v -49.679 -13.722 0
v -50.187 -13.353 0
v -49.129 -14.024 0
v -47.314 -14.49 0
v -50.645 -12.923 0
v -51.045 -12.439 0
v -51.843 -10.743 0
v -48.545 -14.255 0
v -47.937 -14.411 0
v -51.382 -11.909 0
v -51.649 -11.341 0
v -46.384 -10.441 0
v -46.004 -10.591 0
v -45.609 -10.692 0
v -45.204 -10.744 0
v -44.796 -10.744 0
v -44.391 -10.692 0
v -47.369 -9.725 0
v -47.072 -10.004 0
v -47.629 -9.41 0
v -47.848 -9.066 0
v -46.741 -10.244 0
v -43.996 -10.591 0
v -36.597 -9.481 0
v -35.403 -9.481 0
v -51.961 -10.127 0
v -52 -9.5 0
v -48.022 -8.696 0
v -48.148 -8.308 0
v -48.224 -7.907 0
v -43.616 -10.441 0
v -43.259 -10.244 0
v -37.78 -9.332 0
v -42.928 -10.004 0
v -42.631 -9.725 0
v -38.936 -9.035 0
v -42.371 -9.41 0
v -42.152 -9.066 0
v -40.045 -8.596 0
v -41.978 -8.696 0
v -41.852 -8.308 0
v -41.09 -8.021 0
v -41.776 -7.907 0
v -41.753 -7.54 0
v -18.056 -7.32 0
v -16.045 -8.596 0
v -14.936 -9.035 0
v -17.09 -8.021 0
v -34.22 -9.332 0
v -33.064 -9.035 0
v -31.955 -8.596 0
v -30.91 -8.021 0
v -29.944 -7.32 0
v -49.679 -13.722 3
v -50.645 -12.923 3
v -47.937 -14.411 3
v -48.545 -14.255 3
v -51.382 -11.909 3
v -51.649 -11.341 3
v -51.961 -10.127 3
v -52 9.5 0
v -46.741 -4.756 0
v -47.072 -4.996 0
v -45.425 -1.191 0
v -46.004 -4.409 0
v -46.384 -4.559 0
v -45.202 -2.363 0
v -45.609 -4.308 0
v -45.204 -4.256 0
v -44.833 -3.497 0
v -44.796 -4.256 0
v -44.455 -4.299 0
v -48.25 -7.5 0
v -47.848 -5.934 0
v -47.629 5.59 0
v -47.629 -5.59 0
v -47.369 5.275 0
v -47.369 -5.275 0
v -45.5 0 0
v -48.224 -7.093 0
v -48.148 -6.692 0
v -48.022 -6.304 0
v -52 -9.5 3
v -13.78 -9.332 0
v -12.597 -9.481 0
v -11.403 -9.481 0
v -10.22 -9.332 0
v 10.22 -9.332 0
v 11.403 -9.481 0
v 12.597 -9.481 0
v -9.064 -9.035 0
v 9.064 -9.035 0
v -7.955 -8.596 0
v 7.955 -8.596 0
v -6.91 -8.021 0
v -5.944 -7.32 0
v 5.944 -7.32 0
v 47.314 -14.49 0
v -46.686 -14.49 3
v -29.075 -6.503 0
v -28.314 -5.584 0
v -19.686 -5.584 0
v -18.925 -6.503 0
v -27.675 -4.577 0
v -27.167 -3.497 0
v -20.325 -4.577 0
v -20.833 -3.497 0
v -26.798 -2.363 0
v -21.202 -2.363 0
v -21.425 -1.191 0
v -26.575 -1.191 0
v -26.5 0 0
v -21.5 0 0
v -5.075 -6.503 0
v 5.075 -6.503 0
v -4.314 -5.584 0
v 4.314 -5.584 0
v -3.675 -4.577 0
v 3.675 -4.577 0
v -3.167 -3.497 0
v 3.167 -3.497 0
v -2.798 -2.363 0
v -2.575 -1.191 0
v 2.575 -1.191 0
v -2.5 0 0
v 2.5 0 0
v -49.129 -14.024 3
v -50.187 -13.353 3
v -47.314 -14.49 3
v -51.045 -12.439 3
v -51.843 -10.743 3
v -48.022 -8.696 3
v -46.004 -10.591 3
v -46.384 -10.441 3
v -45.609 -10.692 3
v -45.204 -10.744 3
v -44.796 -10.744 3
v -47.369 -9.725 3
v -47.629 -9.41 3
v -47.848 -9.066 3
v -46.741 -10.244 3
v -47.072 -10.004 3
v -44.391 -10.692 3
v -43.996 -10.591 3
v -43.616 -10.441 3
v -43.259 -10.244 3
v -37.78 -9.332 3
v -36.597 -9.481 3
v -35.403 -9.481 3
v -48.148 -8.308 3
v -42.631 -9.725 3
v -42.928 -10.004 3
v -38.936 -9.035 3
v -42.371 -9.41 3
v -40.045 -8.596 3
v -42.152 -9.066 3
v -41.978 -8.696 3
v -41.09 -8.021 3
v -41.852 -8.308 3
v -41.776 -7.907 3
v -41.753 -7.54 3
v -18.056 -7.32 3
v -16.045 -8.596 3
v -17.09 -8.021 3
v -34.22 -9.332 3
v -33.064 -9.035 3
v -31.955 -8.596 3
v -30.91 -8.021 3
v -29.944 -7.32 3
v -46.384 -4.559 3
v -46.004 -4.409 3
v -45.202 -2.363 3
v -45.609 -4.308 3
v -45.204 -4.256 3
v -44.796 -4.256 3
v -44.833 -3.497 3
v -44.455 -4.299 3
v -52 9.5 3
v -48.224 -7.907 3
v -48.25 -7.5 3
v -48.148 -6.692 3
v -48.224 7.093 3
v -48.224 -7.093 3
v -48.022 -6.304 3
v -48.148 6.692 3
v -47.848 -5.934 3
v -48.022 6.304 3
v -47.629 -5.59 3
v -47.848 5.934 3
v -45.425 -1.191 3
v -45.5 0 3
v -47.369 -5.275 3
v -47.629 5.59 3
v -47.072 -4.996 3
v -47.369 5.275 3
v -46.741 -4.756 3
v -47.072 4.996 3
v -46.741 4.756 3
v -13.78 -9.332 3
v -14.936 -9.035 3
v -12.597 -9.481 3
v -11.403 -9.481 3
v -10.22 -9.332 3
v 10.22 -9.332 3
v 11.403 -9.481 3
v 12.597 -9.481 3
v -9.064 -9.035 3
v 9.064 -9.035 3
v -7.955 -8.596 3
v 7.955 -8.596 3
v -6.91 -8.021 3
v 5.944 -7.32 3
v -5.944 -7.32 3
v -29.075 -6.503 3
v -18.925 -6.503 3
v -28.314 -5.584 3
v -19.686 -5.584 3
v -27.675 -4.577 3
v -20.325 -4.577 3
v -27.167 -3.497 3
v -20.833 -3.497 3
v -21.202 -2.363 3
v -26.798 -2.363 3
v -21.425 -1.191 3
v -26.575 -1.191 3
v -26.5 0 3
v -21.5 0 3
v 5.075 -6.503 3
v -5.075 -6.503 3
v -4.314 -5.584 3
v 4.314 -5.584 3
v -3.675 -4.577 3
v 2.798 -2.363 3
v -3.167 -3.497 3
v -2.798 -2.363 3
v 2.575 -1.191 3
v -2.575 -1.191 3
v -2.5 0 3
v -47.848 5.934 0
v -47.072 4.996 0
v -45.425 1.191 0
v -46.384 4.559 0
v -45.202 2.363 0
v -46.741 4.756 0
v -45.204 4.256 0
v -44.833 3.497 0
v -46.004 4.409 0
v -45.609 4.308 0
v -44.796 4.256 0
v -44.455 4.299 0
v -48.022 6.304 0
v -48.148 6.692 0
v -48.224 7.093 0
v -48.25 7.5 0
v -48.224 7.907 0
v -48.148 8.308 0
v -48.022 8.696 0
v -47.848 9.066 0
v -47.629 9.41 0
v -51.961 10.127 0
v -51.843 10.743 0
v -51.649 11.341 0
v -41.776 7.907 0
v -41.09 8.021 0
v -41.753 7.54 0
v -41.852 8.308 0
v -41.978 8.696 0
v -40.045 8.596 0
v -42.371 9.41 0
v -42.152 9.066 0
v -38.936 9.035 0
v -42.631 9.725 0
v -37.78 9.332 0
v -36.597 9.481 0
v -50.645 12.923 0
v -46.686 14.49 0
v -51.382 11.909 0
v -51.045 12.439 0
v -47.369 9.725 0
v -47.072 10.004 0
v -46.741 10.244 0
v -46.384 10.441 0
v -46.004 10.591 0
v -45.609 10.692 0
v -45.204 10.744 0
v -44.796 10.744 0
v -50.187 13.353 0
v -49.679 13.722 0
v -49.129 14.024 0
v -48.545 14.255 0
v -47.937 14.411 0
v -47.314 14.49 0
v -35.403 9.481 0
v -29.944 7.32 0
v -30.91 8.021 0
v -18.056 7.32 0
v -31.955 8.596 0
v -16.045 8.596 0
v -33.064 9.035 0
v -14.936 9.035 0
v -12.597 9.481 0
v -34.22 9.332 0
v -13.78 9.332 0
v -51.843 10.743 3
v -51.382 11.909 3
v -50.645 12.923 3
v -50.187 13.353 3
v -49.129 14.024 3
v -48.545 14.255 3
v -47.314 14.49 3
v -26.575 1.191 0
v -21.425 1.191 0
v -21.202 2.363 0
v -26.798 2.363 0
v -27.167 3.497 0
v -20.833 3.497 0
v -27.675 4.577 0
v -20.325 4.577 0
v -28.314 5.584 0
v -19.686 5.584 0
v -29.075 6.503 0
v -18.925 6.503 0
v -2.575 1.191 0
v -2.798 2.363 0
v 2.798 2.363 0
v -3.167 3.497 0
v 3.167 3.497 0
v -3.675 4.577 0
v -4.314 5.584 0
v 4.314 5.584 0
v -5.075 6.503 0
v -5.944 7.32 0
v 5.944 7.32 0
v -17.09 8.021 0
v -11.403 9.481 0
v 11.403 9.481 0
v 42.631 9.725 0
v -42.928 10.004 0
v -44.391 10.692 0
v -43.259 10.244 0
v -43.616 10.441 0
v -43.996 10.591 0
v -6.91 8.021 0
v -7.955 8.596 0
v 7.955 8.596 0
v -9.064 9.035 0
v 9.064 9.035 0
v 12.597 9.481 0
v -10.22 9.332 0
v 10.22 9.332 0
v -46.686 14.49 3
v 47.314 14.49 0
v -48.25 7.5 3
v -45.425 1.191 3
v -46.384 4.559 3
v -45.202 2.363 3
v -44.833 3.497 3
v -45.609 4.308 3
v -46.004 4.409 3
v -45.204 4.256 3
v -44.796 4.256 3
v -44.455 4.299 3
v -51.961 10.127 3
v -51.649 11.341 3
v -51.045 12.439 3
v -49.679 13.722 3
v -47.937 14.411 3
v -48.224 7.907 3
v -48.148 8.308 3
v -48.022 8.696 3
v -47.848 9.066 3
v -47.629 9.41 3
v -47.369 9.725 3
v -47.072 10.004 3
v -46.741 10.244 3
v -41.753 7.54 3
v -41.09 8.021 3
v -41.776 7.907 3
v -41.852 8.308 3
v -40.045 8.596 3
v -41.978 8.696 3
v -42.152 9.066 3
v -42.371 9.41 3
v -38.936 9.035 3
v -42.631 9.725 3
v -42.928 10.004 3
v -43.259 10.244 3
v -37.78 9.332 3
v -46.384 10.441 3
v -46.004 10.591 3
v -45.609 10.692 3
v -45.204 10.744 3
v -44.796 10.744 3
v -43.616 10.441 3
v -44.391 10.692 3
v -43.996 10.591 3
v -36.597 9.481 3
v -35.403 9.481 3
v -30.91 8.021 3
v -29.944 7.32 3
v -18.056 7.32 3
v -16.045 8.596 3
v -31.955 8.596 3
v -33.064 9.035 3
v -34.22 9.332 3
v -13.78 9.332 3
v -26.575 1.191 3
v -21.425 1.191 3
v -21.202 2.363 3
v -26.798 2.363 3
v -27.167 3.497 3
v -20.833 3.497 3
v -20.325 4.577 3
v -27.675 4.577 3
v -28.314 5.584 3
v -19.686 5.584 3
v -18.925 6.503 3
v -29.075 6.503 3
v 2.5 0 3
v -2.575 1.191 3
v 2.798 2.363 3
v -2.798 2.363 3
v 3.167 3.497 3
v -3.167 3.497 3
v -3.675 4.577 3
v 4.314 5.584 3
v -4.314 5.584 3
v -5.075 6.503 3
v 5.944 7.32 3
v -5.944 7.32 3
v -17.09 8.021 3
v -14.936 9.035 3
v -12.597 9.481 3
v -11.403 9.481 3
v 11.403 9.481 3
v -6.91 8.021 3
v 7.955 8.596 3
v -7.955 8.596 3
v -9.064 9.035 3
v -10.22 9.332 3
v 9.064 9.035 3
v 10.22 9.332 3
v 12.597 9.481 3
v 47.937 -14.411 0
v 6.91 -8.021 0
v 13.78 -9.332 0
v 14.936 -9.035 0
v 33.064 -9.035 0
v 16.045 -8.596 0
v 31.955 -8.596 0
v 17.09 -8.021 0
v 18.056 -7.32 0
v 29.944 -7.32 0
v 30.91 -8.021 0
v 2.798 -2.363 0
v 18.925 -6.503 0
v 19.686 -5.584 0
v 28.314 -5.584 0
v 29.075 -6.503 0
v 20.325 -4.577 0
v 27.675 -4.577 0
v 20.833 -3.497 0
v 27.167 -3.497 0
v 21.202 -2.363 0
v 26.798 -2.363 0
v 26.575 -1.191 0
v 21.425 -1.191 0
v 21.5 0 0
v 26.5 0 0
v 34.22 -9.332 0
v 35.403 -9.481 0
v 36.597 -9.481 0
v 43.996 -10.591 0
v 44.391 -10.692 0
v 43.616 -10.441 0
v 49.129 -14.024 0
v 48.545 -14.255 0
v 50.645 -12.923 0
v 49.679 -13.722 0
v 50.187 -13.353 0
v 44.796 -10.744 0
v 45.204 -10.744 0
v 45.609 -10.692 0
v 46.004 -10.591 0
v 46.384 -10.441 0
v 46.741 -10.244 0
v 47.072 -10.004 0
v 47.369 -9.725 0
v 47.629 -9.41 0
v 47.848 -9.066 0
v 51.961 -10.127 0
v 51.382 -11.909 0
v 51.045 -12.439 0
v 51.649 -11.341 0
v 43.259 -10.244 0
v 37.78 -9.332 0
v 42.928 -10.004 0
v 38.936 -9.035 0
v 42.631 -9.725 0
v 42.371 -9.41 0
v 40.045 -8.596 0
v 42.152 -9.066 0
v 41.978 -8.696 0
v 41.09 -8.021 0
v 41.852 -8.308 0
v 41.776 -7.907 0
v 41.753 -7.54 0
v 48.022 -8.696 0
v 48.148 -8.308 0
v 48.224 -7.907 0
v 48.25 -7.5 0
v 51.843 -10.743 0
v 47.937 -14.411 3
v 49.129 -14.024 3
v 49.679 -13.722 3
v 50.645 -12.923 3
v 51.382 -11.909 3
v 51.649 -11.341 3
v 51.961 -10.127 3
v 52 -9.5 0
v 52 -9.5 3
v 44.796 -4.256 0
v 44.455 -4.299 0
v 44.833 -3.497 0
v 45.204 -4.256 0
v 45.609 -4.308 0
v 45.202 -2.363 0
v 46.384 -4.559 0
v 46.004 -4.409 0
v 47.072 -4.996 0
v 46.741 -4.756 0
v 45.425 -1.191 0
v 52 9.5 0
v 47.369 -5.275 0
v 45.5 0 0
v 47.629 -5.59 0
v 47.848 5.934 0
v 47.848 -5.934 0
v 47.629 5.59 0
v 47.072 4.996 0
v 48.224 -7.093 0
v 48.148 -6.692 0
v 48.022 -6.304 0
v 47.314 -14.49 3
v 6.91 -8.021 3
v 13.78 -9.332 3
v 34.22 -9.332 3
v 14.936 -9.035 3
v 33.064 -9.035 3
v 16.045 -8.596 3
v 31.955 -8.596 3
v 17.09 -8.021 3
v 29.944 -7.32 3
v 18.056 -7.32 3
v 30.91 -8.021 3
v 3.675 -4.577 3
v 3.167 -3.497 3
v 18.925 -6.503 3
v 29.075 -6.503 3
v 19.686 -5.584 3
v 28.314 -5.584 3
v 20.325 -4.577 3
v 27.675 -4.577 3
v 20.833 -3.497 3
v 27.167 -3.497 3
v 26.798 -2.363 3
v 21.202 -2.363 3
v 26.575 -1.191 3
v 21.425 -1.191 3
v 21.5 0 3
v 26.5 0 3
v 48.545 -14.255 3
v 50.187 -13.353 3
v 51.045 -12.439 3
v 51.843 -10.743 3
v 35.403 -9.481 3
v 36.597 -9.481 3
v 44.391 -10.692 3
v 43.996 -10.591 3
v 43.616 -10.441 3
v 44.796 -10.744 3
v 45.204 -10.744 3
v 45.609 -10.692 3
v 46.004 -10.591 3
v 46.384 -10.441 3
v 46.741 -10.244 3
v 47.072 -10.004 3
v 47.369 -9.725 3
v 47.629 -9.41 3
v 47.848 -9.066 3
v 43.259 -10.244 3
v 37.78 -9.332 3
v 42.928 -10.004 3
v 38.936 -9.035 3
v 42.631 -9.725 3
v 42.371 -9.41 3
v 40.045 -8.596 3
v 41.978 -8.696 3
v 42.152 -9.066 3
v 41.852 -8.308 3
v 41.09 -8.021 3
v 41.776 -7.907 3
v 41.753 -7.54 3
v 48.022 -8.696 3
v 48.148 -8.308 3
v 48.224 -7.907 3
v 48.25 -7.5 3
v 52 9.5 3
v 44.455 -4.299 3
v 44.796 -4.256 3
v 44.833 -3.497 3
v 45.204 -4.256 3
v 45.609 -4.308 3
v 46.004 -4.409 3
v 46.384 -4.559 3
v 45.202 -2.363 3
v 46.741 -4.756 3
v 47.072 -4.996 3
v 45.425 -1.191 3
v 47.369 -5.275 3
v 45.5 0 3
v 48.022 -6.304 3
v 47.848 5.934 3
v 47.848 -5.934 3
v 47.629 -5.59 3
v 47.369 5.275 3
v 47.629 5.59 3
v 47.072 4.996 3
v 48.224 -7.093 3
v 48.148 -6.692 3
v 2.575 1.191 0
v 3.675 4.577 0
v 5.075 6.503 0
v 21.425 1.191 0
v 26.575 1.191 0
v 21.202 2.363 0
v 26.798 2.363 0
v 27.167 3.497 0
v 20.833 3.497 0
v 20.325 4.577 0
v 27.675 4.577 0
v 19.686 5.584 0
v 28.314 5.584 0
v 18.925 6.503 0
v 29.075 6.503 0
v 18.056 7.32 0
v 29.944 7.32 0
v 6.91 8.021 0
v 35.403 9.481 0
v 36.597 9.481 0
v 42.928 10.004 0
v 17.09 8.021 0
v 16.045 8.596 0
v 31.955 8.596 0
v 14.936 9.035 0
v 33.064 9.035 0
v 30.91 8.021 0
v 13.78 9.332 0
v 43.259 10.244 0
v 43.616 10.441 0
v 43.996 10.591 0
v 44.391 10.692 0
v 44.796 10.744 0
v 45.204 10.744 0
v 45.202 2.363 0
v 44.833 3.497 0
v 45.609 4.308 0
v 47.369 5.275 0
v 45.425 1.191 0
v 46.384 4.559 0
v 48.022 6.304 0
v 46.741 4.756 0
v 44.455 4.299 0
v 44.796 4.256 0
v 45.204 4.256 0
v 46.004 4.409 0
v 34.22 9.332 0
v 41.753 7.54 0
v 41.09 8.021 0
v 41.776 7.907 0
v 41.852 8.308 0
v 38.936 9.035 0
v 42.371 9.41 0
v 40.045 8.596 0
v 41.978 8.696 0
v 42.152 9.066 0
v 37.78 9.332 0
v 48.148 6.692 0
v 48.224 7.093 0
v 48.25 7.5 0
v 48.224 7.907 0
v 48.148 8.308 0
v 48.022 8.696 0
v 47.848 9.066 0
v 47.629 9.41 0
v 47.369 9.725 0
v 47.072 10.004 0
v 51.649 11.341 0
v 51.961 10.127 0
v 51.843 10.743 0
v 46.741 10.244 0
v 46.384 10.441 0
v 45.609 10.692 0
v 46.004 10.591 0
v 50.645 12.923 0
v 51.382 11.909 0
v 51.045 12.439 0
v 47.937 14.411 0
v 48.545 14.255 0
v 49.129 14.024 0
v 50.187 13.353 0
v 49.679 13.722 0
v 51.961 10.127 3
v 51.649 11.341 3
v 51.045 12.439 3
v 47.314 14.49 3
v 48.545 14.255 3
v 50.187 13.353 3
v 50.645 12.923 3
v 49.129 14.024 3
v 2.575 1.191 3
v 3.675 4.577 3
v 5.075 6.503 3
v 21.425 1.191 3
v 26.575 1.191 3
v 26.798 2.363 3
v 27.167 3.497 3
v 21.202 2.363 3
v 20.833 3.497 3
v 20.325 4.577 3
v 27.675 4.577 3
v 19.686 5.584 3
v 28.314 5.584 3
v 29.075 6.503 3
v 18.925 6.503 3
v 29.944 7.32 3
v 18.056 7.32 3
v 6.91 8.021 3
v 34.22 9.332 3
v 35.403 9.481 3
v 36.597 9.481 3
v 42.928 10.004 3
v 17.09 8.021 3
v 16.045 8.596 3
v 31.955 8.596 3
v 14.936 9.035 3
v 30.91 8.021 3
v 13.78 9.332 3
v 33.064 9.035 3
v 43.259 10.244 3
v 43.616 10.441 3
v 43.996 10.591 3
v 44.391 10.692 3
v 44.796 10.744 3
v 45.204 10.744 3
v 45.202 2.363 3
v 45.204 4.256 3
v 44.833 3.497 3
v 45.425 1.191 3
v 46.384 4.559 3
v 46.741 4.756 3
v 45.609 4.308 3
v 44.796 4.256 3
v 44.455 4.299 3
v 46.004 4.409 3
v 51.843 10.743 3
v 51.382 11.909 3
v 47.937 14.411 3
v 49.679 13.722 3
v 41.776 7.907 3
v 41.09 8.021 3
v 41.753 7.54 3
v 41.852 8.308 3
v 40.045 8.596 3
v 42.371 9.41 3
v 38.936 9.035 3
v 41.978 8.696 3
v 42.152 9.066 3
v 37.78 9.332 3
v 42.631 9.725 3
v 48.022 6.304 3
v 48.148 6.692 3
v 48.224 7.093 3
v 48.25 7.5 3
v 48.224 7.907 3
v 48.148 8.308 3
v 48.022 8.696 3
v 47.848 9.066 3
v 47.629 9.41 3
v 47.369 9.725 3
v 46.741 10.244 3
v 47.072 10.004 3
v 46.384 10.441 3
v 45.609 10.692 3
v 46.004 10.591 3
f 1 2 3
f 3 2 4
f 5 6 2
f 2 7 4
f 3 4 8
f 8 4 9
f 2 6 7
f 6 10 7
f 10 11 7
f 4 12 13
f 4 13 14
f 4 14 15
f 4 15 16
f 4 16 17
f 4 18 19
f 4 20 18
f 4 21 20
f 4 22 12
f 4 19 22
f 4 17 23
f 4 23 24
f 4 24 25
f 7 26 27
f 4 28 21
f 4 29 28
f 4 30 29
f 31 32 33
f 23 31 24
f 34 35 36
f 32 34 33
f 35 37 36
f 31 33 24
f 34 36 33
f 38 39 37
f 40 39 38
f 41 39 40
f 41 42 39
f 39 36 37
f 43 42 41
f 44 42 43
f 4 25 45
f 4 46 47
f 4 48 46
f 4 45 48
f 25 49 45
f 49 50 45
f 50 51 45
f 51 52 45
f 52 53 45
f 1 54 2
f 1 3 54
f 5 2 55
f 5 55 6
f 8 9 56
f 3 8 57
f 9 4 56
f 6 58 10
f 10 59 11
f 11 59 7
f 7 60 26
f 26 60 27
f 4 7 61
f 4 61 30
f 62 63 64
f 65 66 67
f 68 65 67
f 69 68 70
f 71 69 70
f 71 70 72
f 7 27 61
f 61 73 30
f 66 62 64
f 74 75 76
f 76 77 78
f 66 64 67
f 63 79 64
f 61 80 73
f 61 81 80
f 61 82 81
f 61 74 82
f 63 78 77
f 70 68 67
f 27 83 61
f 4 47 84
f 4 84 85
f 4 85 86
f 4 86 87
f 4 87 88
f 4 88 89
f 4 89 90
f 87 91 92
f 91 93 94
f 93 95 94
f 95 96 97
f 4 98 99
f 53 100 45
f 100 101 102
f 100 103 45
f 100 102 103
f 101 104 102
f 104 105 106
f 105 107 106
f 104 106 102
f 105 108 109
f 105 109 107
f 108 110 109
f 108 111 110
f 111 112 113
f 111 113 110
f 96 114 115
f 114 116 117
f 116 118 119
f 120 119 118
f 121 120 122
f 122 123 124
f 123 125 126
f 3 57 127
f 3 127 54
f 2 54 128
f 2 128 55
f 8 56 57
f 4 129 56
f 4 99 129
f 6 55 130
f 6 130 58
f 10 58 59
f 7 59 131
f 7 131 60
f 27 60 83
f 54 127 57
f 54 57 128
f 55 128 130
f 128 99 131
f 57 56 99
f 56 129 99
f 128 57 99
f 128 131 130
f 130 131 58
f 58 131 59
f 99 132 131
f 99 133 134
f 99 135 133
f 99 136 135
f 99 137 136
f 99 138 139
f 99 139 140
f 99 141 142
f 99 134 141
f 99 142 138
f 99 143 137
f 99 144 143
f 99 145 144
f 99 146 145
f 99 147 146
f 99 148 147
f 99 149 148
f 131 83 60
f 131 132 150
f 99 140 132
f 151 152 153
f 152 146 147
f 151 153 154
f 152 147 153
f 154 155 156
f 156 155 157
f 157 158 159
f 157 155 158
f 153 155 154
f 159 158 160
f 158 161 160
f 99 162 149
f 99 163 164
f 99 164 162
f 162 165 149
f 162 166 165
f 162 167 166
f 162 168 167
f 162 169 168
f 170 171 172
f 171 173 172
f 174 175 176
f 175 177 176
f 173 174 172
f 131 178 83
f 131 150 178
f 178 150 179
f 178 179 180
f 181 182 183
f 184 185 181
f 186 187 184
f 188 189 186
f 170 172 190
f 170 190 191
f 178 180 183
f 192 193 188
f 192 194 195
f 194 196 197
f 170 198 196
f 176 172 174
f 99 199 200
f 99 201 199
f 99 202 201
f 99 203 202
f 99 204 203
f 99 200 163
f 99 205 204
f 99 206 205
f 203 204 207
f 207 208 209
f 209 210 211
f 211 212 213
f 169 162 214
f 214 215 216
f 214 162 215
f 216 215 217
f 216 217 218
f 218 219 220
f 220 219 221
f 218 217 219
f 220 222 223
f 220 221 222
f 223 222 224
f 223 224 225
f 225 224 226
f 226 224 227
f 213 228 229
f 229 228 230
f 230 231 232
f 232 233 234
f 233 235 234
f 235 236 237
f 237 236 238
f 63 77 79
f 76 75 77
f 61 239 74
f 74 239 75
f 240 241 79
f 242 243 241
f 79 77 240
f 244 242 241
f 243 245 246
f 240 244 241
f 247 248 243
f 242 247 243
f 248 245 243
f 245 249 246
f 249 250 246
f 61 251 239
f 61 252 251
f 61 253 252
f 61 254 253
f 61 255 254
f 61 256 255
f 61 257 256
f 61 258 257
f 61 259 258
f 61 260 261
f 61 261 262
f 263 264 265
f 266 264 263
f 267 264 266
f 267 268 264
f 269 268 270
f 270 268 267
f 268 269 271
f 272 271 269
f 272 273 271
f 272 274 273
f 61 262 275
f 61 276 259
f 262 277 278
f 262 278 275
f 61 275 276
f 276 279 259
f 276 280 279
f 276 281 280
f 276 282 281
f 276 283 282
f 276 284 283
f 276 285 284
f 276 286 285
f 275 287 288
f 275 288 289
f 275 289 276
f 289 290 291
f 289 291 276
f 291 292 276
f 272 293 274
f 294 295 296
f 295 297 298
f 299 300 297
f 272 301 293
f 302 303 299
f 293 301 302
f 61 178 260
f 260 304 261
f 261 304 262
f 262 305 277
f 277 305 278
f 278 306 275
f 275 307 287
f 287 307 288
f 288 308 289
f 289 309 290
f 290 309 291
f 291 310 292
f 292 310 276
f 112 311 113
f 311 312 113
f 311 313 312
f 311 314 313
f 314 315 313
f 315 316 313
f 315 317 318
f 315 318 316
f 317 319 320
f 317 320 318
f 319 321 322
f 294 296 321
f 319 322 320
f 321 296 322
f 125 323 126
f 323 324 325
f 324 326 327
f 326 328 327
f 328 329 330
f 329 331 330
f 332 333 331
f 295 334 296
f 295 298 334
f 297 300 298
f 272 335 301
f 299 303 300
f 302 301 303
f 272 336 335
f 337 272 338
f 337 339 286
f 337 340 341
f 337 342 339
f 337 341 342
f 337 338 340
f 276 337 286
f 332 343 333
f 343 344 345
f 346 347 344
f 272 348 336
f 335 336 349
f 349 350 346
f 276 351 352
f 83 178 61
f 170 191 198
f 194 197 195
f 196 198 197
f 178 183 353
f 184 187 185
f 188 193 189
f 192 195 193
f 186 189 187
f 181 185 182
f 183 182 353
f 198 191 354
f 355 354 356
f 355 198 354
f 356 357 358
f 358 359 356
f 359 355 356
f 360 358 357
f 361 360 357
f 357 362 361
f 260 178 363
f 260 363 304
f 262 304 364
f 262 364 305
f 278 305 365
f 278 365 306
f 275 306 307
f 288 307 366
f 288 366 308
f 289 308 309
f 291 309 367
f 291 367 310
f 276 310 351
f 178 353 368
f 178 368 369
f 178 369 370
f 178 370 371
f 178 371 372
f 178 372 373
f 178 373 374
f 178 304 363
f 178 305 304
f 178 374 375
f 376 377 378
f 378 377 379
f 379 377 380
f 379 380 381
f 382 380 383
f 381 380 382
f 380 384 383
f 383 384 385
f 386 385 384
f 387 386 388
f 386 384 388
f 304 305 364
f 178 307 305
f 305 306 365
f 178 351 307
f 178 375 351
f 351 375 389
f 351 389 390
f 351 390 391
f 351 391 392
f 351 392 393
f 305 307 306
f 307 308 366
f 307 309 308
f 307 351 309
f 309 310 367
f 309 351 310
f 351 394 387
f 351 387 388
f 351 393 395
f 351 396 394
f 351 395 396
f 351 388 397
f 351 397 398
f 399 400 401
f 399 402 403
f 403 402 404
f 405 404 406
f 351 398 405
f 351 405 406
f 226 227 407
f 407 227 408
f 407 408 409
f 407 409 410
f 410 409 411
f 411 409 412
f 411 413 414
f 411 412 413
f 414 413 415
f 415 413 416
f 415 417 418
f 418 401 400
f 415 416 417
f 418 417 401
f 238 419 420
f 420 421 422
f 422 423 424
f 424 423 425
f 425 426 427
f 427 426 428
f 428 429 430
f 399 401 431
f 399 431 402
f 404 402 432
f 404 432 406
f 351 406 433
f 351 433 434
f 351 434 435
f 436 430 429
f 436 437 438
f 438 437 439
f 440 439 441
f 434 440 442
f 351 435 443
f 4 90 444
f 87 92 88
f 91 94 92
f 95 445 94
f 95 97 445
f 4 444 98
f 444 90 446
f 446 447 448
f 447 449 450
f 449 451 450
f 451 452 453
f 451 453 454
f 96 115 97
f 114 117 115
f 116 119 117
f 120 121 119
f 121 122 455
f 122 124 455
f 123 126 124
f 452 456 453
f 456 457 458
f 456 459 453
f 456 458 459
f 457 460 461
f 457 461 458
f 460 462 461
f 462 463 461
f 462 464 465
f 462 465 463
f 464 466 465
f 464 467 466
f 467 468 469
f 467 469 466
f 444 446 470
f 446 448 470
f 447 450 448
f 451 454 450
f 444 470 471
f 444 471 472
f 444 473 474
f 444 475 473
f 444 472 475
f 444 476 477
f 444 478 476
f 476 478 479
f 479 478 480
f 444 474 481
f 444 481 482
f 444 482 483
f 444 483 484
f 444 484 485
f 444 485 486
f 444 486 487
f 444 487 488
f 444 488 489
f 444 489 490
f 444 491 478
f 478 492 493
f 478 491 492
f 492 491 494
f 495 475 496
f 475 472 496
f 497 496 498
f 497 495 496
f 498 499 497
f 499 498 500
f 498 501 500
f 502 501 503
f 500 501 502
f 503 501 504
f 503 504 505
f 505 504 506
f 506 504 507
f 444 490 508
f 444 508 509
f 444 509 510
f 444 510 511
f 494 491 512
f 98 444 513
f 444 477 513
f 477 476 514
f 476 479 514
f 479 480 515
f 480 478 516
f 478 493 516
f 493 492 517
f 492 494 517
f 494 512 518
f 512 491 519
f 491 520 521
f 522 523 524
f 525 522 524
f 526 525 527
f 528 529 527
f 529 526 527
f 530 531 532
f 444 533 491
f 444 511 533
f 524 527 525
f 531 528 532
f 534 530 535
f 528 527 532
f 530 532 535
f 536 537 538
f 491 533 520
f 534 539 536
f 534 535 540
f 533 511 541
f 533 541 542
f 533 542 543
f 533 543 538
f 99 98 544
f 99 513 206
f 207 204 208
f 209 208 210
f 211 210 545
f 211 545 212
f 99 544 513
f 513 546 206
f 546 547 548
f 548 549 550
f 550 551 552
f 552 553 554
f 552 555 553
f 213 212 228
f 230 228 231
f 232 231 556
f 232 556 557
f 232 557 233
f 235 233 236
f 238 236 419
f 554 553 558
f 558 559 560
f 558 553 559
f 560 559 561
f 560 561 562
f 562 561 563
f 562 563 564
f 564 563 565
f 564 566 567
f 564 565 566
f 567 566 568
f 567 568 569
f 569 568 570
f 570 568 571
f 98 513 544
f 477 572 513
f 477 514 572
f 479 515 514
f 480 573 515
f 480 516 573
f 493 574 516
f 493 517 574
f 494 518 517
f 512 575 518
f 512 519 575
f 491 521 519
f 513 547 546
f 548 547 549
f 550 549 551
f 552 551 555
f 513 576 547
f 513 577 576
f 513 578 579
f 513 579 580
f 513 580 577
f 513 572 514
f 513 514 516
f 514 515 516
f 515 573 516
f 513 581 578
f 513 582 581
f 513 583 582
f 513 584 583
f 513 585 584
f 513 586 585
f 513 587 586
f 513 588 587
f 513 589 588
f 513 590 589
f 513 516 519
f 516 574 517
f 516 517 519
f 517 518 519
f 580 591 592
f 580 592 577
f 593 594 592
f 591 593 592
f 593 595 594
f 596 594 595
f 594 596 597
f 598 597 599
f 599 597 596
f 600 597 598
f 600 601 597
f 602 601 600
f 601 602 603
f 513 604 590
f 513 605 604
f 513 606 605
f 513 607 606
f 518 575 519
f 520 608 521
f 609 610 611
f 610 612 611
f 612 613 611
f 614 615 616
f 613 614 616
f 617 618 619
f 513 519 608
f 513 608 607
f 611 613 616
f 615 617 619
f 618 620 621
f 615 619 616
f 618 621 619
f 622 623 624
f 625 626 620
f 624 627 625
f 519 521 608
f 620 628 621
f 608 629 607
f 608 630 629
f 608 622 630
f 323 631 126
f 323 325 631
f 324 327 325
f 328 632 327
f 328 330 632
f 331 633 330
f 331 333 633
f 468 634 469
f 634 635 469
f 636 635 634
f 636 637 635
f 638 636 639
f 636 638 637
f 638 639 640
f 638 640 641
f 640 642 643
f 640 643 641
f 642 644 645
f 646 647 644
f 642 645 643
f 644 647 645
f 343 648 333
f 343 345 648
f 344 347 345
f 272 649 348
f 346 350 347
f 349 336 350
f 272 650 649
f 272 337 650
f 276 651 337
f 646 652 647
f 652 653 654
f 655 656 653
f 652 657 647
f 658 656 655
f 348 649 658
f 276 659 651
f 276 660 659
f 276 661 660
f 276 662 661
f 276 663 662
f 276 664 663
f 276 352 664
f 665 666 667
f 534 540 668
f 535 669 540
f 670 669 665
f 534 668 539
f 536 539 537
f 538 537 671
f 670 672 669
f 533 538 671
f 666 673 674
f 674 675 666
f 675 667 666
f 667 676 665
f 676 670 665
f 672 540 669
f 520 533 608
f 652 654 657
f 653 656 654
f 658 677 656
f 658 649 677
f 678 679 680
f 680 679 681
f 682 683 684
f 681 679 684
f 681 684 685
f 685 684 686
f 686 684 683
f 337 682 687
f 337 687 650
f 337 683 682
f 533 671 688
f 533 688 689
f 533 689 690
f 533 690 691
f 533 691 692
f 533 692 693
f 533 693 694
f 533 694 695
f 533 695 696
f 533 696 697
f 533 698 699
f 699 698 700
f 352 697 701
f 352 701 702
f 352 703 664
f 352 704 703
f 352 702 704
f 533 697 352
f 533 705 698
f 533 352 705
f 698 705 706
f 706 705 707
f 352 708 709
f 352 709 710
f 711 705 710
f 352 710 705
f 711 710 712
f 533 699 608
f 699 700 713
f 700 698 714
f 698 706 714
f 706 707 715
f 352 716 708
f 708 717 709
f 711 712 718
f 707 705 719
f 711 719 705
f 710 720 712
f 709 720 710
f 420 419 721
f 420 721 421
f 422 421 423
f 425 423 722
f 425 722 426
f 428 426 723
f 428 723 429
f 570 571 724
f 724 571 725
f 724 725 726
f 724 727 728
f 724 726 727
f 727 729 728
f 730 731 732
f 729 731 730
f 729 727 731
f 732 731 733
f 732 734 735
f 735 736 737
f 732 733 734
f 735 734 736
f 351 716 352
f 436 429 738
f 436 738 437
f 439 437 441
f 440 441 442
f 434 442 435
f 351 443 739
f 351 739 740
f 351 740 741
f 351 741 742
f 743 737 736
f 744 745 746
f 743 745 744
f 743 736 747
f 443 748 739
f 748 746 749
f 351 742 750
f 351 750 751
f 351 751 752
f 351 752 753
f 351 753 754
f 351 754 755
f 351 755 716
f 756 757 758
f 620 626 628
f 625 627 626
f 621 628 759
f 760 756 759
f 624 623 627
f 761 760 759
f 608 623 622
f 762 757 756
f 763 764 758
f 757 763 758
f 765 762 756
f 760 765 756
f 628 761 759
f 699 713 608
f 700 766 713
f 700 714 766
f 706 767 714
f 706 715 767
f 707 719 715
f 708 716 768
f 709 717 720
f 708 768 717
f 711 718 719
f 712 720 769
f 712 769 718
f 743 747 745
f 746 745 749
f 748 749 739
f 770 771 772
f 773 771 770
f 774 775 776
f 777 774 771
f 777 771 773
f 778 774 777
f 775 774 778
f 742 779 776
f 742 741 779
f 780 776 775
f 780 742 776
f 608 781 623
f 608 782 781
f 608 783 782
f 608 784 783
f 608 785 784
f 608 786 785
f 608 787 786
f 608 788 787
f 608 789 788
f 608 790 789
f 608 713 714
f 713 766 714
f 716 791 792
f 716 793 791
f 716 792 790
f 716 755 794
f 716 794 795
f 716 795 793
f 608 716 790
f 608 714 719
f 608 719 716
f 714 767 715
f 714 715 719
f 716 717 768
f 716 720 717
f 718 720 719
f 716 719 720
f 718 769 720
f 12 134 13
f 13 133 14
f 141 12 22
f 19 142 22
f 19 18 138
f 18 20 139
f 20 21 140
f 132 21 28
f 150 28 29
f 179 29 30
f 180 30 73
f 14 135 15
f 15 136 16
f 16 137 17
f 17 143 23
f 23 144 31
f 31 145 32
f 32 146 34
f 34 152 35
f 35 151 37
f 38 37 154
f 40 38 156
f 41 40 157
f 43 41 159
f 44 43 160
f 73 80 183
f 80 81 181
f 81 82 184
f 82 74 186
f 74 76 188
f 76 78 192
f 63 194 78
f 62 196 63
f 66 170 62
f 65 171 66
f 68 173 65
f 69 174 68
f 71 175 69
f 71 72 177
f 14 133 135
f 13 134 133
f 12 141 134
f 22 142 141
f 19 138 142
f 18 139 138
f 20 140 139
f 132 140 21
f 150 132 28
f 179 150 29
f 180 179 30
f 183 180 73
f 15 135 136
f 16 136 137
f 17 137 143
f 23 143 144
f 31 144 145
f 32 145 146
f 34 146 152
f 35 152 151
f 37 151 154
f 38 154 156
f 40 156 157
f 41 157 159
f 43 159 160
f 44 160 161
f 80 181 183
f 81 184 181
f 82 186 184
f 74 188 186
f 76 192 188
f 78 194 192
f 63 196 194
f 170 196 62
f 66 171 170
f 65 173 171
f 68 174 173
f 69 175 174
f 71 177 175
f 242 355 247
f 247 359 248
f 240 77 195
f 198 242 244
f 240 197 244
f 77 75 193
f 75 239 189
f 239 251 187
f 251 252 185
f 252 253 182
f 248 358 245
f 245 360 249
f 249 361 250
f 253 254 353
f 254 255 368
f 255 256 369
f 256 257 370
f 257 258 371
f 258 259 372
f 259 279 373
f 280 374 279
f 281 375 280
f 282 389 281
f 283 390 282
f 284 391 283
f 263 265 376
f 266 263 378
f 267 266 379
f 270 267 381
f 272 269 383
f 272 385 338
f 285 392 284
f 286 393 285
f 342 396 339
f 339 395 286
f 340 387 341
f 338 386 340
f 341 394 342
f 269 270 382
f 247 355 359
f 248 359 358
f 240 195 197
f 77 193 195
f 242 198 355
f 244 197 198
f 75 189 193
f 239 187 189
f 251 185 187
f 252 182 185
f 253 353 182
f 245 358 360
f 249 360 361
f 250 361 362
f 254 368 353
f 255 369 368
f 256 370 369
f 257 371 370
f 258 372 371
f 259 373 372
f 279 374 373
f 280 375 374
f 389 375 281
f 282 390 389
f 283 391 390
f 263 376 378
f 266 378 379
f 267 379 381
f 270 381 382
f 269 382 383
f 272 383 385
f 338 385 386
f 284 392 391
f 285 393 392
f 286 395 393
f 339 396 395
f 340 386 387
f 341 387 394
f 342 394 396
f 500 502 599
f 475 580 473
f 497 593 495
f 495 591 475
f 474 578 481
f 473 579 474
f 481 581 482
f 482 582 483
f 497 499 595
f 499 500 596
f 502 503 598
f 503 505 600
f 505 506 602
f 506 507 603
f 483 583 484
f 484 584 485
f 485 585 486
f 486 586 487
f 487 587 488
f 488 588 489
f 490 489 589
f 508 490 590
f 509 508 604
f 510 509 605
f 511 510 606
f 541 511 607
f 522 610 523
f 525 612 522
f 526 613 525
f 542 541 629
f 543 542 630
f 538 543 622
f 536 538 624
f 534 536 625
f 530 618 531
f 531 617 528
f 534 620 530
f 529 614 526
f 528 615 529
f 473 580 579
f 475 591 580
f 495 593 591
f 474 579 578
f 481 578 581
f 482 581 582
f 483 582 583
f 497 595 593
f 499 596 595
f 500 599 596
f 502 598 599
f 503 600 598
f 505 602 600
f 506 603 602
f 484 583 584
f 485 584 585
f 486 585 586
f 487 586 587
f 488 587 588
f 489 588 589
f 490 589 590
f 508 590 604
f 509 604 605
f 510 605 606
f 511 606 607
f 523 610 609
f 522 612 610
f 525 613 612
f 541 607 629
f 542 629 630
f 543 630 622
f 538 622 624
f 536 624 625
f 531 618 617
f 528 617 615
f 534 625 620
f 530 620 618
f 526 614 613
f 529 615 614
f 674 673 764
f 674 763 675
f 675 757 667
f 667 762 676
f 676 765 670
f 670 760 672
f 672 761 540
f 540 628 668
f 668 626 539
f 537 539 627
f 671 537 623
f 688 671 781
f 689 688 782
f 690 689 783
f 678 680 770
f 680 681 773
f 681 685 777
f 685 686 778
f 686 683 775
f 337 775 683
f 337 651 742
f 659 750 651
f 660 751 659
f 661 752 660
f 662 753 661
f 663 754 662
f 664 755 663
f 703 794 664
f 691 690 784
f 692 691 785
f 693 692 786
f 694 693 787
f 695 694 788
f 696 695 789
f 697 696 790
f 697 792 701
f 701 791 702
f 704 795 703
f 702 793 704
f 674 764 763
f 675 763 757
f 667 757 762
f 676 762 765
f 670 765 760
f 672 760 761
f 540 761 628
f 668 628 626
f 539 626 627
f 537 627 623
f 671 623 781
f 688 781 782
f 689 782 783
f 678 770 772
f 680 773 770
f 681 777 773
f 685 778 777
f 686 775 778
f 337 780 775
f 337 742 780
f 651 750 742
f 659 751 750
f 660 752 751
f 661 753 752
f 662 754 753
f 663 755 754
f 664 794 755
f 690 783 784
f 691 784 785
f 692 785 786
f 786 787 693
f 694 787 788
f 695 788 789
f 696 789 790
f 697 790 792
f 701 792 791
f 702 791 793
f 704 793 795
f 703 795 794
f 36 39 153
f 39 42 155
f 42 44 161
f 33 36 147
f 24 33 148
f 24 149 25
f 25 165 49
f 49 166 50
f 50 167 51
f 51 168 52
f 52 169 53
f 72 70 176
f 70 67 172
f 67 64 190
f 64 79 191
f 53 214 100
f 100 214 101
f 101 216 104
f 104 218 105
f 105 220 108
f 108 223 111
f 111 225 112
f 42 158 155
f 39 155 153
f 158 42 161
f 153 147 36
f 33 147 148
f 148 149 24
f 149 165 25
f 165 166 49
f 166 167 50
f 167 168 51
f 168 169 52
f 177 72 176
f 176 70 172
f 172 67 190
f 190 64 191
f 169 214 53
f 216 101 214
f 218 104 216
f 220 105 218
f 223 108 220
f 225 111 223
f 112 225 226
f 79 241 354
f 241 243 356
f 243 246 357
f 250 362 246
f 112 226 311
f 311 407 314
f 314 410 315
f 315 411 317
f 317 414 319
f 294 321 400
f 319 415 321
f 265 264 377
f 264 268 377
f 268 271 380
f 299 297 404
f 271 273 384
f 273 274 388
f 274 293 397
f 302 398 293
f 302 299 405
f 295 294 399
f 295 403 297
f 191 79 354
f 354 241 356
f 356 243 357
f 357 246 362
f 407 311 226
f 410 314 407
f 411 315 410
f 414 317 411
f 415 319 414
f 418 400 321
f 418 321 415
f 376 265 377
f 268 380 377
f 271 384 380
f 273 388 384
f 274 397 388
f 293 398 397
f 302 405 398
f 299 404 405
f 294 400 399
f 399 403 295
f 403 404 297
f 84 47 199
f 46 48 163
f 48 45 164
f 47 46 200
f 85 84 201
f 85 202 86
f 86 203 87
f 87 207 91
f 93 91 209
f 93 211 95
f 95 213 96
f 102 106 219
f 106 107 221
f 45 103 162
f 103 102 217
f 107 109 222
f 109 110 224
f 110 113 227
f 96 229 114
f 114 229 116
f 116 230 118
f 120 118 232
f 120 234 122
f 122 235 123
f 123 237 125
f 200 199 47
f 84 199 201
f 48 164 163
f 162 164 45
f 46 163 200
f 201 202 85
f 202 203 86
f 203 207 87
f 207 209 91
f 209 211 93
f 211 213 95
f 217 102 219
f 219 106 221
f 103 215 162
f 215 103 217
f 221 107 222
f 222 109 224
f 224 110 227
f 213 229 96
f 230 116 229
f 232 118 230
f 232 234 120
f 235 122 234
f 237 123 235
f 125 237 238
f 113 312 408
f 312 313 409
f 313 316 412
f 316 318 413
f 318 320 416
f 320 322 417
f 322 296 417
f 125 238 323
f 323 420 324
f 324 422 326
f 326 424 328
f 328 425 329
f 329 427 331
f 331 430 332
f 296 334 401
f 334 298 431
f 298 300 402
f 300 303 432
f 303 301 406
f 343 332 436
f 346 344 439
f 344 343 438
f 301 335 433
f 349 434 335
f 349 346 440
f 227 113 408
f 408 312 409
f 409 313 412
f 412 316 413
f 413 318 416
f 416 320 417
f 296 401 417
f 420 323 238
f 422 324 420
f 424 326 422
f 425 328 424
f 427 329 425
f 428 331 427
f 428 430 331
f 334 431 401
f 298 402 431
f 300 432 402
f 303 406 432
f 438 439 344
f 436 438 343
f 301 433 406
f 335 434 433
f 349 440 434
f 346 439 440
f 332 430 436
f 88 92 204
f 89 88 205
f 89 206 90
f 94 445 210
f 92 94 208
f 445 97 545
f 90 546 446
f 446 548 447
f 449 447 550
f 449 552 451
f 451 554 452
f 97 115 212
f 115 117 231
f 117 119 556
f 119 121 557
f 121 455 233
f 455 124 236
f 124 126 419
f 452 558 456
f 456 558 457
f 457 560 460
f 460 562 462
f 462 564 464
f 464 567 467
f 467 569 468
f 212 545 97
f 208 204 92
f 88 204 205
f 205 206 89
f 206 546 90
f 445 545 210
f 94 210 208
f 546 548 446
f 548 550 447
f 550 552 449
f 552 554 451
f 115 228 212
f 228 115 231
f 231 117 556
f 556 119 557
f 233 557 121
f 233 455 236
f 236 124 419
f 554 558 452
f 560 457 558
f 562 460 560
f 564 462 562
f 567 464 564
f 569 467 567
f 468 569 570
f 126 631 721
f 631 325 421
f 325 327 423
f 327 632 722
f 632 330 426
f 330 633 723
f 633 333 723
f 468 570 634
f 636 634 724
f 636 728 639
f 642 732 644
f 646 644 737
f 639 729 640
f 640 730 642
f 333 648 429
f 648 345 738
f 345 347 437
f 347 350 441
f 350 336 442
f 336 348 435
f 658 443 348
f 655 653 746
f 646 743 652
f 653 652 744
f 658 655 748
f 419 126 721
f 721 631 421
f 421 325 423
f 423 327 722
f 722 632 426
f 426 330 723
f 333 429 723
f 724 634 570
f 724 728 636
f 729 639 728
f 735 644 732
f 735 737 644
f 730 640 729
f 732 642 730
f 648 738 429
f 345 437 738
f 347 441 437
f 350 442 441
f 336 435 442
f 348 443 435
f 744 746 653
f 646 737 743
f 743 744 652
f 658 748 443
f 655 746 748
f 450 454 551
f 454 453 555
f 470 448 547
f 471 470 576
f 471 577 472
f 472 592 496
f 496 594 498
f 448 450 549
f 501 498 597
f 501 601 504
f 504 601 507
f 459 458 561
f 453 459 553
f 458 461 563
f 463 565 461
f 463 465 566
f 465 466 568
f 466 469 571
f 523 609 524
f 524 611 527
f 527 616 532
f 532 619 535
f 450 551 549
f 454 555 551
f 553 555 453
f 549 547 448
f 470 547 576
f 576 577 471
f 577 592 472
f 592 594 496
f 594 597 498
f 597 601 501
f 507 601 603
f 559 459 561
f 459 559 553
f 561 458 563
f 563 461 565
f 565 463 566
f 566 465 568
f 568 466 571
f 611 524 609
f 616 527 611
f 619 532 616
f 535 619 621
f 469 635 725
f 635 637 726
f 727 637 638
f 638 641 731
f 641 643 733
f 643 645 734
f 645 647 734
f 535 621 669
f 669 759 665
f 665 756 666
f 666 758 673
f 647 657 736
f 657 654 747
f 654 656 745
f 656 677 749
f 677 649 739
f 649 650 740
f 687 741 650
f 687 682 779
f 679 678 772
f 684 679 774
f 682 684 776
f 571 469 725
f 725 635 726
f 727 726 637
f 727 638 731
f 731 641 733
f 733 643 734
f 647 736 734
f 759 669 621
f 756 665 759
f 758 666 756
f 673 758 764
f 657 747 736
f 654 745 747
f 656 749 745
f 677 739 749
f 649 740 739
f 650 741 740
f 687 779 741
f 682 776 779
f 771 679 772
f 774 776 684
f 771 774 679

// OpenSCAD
$fn = 50;

difference() {
	union() {
		hull() {
			translate(v = [-47.0, 9.5, 0]) {
				cylinder(h = 3, r = 5);
			}
			translate(v = [47.0, 9.5, 0]) {
				cylinder(h = 3, r = 5);
			}
			translate(v = [-47.0, -9.5, 0]) {
				cylinder(h = 3, r = 5);
			}
			translate(v = [47.0, -9.5, 0]) {
				cylinder(h = 3, r = 5);
			}
		}
	}
	union() {
		translate(v = [-45.0, -7.5, -100.0]) {
			cylinder(h = 200, r = 3.25);
		}
		translate(v = [-45.0, 7.5, -100.0]) {
			cylinder(h = 200, r = 3.25);
		}
		translate(v = [45.0, -7.5, -100.0]) {
			cylinder(h = 200, r = 3.25);
		}
		translate(v = [45.0, 7.5, -100.0]) {
			cylinder(h = 200, r = 3.25);
		}
		translate(v = [-45.0, -7.5, -100.0]) {
			cylinder(h = 200, r = 1.8);
		}
		translate(v = [-45.0, 7.5, -100.0]) {
			cylinder(h = 200, r = 1.8);
		}
		translate(v = [45.0, -7.5, -100.0]) {
			cylinder(h = 200, r = 1.8);
		}
		translate(v = [45.0, 7.5, -100.0]) {
			cylinder(h = 200, r = 1.8);
		}
		translate(v = [-36.0, 0, 0.0]) {
			cylinder(h = 3, r = 9.5);
		}
		translate(v = [-12.0, 0, 0.0]) {
			cylinder(h = 3, r = 9.5);
		}
		translate(v = [12.0, 0, 0.0]) {
			cylinder(h = 3, r = 9.5);
		}
		translate(v = [36.0, 0, 0.0]) {
			cylinder(h = 3, r = 9.5);
		}
	}
}
